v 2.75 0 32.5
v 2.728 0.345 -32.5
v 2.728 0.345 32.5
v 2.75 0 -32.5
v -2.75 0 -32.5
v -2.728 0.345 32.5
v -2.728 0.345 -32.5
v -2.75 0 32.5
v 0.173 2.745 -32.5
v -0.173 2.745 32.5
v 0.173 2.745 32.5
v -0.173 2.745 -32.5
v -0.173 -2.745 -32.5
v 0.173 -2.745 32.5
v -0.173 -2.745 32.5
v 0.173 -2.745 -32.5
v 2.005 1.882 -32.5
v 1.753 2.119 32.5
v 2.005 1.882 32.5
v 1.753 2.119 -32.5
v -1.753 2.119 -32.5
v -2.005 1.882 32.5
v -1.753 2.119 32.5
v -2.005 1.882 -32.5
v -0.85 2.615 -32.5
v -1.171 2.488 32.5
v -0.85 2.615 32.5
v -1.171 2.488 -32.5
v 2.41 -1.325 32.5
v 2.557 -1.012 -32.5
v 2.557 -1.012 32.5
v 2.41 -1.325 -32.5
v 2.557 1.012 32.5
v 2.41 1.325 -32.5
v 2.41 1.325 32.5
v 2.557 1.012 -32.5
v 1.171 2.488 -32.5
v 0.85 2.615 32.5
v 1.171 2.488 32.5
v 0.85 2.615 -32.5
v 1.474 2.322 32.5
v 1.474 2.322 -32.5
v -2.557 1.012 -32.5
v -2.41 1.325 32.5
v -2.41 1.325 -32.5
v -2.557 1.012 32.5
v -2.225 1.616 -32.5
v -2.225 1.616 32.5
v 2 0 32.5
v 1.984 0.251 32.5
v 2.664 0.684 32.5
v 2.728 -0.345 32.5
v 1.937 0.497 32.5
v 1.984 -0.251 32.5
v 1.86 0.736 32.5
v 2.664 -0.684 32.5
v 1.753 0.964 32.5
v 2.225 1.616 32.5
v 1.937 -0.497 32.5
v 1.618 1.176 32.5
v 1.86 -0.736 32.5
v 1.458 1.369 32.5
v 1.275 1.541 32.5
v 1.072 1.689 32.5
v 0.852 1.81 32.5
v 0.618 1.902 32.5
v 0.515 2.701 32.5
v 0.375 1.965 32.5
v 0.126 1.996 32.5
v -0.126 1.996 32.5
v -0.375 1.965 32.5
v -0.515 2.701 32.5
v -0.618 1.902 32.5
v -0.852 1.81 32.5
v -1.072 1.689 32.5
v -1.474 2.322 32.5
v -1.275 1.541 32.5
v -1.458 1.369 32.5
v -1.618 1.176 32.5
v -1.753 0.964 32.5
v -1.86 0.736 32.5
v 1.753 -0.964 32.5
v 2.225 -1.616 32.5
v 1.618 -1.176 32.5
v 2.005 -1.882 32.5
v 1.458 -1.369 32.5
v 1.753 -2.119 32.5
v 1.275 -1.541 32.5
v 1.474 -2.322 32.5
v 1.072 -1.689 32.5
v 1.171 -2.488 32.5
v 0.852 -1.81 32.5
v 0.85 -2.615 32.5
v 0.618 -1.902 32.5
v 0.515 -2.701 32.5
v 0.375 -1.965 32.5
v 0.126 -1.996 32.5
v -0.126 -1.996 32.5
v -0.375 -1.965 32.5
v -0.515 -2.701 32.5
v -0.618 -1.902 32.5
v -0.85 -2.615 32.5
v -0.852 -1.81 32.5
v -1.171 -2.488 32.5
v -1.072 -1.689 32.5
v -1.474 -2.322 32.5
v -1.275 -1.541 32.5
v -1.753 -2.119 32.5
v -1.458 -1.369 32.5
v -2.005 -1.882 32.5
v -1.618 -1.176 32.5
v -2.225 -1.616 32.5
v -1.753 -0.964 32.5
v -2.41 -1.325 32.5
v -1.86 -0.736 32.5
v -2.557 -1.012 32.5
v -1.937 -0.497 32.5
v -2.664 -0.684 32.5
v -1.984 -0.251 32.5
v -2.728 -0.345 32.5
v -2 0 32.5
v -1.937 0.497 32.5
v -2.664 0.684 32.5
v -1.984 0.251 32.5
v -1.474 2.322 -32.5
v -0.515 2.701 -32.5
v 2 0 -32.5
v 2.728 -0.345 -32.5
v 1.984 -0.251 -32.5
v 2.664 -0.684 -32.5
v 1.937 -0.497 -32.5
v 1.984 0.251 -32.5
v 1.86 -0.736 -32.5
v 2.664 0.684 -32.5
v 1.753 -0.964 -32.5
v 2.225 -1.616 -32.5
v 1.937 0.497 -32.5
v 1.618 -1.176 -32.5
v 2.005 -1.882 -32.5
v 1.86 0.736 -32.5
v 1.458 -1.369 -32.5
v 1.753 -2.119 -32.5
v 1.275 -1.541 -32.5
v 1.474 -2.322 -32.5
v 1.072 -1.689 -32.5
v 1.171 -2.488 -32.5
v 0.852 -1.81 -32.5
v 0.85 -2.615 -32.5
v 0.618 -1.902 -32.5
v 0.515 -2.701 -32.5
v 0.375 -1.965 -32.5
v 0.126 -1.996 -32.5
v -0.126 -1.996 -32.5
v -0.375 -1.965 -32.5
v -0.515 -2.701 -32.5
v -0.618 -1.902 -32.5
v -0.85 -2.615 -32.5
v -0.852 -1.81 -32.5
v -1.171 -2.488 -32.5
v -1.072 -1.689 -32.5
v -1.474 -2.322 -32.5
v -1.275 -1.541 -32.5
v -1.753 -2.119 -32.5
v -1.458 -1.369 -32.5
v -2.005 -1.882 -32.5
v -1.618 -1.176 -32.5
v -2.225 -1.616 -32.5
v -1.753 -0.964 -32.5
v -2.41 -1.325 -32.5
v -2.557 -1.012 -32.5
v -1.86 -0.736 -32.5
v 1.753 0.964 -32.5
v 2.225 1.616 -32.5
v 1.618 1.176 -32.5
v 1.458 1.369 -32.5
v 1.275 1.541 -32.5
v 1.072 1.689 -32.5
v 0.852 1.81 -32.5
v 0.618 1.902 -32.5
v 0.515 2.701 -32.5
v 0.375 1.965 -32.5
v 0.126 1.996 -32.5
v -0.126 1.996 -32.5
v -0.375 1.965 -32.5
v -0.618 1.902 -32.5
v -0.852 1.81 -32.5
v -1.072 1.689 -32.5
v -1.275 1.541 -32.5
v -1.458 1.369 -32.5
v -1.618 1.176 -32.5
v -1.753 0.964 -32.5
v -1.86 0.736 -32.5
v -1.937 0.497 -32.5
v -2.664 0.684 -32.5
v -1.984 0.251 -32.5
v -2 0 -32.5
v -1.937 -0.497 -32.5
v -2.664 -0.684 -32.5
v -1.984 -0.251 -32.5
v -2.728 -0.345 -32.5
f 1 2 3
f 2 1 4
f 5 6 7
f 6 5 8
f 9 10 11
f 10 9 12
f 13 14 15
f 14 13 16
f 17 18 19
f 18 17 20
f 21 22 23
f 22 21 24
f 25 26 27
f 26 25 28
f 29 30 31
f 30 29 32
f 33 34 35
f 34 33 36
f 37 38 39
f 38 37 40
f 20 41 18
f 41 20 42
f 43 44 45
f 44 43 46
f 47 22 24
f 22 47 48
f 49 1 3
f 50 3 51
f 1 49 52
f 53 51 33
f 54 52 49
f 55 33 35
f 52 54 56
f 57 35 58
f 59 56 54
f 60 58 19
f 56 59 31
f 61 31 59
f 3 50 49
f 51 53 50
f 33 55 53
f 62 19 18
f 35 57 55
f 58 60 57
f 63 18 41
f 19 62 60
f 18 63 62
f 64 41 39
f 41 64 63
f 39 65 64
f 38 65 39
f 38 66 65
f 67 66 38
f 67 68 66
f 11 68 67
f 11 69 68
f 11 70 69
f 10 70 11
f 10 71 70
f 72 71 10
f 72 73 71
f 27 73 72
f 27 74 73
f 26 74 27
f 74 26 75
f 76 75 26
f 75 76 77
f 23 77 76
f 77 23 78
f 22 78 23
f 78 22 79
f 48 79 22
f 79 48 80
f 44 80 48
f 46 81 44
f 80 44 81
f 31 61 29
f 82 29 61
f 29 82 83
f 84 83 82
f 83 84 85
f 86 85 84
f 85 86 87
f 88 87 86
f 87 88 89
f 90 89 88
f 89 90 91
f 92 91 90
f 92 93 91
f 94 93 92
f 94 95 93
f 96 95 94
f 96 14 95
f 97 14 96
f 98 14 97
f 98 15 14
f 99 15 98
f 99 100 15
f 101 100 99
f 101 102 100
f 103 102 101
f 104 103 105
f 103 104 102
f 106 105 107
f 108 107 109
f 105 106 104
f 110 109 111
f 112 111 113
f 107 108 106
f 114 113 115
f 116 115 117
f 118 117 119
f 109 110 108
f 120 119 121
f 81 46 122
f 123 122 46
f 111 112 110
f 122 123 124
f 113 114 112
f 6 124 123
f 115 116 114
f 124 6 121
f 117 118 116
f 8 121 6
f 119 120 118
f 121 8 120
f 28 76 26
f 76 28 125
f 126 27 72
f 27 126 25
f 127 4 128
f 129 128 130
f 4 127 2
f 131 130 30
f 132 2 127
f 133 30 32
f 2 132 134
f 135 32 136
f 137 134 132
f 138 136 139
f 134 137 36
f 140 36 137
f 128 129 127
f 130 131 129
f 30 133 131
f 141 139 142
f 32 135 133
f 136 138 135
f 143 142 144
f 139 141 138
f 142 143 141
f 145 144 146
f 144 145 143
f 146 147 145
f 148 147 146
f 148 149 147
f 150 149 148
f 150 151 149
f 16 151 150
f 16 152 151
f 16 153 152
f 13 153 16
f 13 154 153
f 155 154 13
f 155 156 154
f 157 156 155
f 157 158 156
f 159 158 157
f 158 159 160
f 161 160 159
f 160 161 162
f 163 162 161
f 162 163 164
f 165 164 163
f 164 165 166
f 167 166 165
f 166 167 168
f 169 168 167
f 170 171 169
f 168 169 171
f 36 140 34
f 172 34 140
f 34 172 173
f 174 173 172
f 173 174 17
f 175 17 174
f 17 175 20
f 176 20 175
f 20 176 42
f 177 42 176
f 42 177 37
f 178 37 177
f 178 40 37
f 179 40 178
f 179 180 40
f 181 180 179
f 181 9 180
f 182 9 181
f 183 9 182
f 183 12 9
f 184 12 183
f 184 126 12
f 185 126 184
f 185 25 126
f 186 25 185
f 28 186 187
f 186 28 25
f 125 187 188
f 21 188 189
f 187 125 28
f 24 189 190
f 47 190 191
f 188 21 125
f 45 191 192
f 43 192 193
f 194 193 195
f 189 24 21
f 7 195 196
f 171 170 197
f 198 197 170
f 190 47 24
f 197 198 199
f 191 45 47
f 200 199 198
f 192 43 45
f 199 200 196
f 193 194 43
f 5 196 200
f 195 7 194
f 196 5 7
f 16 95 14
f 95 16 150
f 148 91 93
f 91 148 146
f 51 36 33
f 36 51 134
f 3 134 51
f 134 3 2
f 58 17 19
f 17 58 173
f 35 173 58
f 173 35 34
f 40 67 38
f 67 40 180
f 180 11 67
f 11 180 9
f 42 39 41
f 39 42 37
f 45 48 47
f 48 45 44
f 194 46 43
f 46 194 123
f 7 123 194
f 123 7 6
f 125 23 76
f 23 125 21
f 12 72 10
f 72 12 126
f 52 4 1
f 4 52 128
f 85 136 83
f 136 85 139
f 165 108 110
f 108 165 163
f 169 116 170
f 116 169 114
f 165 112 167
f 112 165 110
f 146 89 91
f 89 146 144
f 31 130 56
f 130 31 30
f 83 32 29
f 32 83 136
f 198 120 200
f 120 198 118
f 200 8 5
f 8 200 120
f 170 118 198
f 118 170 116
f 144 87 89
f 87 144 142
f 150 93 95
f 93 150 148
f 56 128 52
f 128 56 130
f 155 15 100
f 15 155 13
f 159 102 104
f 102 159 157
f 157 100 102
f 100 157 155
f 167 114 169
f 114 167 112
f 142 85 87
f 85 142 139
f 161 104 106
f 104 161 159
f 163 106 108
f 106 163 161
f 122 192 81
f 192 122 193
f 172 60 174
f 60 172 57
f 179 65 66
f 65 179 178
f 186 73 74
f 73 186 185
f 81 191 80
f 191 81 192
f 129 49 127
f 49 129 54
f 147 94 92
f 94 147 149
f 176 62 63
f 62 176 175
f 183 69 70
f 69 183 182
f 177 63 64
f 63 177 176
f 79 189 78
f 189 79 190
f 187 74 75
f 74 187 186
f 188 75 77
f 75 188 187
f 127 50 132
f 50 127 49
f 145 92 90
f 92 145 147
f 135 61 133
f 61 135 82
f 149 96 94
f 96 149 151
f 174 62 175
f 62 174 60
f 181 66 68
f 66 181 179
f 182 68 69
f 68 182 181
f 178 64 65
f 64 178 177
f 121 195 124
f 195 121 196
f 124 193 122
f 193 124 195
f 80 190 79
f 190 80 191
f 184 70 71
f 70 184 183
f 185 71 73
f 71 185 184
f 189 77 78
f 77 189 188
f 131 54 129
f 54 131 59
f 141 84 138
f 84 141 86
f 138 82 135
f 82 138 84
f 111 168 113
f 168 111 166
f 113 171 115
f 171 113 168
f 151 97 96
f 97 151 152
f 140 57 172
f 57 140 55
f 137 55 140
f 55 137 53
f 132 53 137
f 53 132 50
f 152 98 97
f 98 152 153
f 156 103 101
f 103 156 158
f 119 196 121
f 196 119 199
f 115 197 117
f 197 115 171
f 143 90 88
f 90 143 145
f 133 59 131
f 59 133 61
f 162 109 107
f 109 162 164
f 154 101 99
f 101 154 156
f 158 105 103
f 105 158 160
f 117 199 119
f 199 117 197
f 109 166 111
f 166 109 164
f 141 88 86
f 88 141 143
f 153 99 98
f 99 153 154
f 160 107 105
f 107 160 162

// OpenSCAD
$fn = 50;


difference() {
	union() {
		translate(v = [0, 0, -32.5000000000]) {
			cylinder(h = 65, r = 2.7500000000);
		}
	}
	union() {
		translate(v = [0, 0, -100.0000000000]) {
			cylinder(h = 200, r = 2.0000000000);
		}
	}
}
